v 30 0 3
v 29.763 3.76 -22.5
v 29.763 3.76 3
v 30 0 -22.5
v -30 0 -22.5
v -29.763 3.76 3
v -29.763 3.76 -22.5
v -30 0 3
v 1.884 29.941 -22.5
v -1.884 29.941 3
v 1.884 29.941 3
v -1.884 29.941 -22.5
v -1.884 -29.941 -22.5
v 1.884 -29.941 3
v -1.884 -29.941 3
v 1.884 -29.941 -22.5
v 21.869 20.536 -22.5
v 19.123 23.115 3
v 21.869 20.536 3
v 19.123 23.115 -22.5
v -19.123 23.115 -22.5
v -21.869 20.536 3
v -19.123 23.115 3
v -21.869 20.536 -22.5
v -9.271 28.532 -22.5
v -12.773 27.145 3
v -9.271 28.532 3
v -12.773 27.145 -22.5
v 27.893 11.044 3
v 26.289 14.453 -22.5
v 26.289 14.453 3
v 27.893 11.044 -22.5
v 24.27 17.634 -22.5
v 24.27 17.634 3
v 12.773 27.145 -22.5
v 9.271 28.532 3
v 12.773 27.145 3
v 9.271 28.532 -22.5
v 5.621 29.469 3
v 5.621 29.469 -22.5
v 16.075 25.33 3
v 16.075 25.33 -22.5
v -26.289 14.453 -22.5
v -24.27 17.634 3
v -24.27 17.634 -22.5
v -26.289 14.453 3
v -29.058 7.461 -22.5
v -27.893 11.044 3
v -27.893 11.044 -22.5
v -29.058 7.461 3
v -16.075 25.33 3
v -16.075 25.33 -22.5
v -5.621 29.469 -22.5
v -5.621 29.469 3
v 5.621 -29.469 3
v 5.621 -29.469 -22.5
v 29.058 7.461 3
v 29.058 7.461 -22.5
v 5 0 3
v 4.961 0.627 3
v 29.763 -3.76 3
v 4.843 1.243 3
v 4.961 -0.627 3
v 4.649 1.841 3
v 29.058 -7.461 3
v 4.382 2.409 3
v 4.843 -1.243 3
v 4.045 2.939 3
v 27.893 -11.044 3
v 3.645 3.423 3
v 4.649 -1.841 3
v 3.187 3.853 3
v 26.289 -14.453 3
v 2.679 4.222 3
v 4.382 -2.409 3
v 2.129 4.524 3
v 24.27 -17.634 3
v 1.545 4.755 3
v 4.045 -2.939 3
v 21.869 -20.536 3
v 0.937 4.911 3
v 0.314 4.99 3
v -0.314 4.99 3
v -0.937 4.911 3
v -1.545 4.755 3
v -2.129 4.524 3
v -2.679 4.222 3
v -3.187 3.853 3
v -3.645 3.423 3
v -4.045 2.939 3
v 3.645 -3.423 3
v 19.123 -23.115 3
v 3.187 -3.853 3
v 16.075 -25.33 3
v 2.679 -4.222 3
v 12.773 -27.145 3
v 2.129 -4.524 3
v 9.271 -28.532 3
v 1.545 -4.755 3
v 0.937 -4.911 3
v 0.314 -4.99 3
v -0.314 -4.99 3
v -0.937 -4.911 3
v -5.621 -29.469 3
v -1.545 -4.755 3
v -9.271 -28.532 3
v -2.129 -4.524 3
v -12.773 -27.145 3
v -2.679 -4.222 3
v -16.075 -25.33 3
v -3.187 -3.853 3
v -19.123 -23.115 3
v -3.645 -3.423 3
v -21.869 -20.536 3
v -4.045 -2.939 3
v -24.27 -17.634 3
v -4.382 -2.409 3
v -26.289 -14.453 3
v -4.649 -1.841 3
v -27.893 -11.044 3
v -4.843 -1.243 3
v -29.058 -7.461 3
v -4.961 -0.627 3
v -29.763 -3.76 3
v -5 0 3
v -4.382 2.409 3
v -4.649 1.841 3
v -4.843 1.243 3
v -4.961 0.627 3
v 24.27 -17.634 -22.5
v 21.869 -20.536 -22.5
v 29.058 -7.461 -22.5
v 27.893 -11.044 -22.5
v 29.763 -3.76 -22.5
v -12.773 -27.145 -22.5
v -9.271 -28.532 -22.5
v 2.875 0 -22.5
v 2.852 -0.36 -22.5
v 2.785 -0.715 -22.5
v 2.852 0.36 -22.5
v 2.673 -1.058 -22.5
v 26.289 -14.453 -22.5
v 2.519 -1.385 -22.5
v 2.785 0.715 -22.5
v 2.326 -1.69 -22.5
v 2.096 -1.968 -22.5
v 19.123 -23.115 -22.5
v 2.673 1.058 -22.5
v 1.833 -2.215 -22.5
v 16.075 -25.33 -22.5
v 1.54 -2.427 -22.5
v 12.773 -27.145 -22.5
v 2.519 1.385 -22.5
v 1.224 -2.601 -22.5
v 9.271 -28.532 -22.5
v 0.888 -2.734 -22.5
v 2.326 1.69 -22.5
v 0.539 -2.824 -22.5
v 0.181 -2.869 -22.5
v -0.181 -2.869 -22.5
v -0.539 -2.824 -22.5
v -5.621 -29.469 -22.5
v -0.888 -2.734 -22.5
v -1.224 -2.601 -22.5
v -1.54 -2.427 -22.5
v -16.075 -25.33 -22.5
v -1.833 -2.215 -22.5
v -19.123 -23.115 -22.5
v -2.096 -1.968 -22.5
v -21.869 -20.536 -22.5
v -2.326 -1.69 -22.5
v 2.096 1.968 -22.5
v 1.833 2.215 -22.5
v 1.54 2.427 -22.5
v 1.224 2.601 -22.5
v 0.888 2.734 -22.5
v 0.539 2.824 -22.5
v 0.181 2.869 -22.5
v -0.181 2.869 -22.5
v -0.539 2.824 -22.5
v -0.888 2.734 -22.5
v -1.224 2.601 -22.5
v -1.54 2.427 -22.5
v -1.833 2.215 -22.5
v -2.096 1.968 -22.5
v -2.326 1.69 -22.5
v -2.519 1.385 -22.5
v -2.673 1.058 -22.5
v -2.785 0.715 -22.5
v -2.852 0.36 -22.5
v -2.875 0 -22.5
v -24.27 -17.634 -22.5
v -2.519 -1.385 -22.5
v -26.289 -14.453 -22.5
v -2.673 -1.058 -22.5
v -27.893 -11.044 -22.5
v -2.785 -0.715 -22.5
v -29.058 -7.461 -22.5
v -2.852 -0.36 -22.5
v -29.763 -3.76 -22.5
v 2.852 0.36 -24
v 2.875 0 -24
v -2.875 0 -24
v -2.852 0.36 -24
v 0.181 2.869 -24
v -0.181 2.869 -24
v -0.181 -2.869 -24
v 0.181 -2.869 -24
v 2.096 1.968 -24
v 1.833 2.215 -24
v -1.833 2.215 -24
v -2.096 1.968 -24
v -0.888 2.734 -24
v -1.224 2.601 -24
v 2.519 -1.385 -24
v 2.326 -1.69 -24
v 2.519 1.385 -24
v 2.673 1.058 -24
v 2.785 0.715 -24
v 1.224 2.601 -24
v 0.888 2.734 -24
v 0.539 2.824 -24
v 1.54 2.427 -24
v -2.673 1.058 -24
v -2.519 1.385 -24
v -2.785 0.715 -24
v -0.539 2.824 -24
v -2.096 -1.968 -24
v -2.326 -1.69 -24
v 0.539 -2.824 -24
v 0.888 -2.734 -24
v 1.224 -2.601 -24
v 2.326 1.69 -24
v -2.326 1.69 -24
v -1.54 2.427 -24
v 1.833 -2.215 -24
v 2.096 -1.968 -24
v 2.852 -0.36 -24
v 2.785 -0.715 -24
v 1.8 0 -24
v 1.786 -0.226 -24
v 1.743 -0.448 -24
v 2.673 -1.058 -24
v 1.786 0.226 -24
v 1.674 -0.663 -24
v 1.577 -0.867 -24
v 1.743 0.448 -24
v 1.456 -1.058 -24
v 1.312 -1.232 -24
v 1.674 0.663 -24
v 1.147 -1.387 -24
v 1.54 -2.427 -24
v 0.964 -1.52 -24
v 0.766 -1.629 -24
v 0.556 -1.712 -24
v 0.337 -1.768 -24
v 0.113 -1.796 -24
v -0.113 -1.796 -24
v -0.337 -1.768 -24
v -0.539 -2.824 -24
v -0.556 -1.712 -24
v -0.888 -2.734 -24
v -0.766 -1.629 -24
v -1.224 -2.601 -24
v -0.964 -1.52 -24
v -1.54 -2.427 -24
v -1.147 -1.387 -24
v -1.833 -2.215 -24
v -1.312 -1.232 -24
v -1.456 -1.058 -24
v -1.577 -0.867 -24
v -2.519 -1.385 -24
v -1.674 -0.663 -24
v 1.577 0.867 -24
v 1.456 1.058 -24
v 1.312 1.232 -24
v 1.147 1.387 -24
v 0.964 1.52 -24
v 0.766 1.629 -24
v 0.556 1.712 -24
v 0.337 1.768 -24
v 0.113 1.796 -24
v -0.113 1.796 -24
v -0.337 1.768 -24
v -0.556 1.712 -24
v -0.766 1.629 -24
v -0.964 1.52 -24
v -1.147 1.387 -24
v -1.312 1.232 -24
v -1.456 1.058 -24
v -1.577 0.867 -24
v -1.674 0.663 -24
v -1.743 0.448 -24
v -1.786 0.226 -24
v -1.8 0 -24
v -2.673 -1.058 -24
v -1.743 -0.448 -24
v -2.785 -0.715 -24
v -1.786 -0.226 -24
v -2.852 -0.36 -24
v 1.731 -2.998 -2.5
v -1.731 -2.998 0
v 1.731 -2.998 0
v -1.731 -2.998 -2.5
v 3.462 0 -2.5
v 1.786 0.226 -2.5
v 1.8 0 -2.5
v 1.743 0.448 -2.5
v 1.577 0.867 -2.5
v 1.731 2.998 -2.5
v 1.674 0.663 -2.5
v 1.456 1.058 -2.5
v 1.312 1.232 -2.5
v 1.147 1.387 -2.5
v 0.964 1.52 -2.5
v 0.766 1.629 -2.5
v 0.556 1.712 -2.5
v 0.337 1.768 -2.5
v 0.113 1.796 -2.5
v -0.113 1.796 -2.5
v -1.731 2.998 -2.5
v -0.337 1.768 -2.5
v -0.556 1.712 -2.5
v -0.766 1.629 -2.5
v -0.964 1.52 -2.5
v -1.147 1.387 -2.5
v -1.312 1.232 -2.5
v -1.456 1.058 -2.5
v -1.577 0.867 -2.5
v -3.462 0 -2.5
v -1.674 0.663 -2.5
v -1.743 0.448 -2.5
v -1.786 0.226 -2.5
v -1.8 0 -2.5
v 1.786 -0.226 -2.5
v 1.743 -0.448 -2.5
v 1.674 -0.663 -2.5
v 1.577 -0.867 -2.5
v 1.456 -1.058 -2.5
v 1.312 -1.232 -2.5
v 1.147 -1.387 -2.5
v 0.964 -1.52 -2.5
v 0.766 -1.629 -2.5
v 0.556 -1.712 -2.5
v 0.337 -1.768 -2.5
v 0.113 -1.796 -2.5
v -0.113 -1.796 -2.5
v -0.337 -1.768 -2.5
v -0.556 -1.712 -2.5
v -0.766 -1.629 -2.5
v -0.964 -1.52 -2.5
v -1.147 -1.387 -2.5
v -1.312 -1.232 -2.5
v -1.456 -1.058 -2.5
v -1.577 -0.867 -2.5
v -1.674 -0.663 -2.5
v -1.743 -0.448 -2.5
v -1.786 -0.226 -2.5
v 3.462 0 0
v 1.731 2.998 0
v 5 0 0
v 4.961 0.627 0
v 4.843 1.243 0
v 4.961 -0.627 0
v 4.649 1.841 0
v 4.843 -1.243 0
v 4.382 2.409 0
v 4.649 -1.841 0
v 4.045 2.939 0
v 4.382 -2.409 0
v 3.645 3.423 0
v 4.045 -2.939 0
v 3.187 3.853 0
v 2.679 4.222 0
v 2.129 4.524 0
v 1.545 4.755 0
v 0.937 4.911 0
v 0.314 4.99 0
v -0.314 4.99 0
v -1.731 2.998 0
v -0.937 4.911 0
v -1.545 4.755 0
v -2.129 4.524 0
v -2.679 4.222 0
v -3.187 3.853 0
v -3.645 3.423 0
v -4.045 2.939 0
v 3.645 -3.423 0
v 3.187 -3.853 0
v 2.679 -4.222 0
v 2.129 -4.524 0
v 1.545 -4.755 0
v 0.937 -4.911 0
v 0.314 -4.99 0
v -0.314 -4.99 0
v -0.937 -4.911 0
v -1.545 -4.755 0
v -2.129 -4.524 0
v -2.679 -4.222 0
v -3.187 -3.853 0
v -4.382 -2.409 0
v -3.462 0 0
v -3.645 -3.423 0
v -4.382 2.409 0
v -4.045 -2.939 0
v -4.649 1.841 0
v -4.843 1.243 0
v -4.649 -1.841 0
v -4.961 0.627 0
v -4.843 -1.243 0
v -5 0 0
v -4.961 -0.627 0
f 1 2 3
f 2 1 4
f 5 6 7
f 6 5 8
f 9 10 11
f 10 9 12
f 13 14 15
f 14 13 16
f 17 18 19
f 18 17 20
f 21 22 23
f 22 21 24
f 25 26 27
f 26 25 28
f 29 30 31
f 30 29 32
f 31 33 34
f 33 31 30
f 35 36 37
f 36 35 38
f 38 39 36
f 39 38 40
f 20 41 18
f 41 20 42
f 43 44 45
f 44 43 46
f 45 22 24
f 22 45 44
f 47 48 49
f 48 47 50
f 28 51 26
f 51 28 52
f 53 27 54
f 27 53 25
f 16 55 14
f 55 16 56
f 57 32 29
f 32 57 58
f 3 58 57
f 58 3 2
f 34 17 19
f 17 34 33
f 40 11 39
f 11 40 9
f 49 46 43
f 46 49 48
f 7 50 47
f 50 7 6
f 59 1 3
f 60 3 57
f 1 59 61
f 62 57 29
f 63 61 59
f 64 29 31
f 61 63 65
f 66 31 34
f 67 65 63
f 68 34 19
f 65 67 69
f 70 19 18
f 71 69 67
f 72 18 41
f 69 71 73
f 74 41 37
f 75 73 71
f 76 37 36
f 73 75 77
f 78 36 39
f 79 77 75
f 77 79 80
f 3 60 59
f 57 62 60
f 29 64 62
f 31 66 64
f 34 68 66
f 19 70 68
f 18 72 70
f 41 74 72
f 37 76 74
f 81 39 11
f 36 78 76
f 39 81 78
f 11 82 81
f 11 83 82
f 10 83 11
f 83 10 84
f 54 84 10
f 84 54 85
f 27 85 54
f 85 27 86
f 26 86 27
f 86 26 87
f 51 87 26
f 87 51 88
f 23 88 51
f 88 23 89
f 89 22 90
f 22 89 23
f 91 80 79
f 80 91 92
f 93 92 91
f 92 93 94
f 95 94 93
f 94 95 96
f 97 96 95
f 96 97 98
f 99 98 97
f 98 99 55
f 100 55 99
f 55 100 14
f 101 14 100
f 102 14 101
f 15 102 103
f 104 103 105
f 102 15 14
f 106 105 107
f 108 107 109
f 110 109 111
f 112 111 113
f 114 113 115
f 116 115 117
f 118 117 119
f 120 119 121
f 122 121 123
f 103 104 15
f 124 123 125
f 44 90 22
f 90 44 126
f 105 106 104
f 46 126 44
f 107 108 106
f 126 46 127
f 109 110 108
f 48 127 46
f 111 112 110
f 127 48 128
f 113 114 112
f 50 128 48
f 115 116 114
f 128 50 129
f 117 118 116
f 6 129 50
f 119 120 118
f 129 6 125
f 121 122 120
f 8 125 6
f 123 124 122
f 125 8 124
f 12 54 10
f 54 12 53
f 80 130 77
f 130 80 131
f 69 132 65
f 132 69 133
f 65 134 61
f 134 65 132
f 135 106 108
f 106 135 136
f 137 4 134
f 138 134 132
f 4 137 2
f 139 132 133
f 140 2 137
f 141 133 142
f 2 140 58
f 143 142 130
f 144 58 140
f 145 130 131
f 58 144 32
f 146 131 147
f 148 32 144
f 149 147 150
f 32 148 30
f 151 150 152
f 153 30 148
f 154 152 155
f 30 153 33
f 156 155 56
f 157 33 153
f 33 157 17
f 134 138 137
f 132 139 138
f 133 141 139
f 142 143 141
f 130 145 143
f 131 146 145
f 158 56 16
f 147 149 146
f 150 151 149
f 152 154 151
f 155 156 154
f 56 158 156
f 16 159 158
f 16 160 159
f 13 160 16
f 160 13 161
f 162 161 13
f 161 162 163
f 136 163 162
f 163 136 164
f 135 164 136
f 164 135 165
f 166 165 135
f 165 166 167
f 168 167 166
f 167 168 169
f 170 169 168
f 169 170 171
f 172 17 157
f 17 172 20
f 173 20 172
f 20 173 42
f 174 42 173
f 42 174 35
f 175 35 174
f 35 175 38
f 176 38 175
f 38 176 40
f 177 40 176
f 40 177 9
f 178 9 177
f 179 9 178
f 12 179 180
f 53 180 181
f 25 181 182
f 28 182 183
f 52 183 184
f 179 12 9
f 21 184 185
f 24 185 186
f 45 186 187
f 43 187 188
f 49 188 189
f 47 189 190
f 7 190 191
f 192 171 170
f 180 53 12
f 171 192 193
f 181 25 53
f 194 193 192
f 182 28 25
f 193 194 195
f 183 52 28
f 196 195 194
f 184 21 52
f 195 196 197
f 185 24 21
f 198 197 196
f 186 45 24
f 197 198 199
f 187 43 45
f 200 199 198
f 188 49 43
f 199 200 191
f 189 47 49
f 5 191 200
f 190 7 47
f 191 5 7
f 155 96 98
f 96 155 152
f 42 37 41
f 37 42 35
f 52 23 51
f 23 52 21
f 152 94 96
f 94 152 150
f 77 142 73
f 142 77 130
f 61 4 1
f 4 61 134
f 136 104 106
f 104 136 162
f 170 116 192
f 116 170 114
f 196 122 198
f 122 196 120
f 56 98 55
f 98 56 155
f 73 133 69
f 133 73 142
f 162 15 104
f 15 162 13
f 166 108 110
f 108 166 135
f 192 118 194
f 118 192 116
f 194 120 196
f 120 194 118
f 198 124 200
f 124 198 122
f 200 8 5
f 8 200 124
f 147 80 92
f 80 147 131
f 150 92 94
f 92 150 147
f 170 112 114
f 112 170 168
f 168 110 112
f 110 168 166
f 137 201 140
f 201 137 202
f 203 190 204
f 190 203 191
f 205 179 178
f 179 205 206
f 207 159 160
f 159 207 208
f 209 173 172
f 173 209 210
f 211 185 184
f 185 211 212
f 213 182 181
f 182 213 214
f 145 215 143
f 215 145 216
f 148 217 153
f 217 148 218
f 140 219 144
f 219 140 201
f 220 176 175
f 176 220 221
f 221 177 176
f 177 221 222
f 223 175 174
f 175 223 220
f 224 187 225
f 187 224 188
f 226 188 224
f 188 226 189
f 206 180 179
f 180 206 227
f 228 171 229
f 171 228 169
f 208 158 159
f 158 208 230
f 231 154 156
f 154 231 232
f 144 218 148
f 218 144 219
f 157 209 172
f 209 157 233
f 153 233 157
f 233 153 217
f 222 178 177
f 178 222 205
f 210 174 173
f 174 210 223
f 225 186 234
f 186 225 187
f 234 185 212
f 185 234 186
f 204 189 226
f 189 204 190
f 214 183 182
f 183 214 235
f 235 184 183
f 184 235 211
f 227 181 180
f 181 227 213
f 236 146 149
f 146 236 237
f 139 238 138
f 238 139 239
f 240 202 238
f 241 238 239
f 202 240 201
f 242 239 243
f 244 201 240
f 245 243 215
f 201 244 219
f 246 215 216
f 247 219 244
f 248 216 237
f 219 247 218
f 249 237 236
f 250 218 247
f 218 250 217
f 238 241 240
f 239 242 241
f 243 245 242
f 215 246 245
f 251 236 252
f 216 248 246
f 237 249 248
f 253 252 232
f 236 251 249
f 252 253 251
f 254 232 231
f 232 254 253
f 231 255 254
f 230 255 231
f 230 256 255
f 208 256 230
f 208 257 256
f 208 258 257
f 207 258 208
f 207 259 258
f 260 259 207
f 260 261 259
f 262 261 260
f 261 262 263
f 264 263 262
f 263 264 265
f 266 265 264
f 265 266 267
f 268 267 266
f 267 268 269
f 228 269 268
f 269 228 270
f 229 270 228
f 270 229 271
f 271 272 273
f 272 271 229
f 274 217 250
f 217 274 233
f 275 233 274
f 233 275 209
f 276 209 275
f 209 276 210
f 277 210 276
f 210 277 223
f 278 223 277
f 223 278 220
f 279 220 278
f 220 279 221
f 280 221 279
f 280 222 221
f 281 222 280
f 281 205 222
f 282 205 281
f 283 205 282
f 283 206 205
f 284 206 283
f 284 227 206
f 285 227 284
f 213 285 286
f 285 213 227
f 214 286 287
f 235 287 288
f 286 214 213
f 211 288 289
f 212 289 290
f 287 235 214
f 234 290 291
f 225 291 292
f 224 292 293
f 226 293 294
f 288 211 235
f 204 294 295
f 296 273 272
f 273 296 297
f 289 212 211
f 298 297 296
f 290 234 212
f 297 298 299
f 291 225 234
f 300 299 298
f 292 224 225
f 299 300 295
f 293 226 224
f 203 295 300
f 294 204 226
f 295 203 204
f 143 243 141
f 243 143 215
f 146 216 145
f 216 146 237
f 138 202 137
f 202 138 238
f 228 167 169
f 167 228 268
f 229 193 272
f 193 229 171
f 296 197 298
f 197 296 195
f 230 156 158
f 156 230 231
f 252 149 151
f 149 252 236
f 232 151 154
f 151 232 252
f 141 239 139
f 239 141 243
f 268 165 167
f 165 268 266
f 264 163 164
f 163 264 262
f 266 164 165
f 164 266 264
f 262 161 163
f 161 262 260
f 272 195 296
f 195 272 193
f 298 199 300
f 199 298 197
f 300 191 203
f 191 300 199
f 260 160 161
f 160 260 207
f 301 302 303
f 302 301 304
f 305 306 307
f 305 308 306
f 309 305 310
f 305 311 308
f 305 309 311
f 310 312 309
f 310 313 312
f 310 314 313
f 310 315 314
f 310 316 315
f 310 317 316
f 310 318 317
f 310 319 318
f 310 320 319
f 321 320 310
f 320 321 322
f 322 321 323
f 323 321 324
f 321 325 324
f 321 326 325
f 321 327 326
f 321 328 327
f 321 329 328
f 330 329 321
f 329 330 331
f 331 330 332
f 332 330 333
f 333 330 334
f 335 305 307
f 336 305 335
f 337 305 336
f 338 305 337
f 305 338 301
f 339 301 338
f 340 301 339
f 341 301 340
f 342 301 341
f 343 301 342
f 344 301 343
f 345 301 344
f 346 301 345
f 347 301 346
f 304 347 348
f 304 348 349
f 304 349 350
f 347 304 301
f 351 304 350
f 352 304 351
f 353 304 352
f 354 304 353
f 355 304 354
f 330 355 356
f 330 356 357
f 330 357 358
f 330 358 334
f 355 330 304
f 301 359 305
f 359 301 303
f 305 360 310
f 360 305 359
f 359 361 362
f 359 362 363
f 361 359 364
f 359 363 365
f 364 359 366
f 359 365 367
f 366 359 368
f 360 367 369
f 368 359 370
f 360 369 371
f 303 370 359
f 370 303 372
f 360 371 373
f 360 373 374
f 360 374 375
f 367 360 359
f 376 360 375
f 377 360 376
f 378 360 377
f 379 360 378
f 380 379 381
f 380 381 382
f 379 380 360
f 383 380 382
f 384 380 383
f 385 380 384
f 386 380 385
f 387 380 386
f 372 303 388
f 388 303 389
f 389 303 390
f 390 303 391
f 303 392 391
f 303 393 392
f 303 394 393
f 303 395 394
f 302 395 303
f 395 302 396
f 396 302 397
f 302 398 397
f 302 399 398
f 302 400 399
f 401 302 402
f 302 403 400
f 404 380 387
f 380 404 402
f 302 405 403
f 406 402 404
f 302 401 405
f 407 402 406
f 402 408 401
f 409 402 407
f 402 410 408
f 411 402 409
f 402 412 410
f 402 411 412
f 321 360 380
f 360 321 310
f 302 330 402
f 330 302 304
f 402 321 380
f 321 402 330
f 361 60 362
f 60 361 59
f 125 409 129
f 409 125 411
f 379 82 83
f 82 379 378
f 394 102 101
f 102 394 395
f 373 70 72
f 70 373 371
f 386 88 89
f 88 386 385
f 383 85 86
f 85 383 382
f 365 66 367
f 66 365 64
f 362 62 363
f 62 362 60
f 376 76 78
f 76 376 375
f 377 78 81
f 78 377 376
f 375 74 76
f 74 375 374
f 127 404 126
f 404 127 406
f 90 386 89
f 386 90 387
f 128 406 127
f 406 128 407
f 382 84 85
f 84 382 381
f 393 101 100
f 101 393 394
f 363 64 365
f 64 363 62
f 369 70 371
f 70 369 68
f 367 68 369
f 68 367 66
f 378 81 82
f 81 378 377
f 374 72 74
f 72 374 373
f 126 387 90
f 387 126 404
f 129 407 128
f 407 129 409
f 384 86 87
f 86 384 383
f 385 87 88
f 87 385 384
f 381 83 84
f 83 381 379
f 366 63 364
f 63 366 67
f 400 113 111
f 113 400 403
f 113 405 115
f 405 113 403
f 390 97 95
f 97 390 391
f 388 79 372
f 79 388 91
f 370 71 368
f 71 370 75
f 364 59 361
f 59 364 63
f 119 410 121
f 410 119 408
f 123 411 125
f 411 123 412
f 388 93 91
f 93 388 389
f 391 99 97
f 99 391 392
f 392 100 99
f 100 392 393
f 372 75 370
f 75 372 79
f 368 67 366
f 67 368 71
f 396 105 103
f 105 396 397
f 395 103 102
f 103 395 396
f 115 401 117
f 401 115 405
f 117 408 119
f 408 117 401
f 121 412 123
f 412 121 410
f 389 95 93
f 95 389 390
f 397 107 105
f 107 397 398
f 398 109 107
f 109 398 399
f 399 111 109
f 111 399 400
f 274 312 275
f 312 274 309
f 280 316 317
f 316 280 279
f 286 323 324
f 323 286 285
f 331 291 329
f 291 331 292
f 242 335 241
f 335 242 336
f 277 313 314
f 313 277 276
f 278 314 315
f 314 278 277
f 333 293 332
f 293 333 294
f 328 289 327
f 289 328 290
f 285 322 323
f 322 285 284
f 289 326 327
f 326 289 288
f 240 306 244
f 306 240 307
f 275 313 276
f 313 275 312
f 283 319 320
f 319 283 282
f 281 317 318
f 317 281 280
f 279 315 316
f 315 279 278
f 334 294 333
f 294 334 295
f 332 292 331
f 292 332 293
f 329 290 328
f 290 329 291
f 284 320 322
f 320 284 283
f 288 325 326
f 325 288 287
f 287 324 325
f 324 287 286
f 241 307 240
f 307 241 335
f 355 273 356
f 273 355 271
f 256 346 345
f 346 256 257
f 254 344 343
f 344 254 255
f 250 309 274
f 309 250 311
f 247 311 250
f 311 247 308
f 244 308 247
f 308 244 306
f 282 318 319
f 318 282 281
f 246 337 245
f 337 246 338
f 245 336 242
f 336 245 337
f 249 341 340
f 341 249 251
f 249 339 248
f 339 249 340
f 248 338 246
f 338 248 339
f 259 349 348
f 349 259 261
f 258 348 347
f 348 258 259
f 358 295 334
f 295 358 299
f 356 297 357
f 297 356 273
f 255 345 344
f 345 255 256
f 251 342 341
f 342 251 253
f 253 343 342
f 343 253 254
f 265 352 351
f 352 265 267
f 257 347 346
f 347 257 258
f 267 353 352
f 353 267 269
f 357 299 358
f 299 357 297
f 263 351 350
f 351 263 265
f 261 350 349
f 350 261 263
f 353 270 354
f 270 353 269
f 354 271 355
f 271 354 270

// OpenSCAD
$fn = 50;

difference() {
	union() {
		translate(v = [0, 0, -22.5]) {
			cylinder(h = 25.5, r = 30.0);
		}
		#translate(v = [0, 0, -24.0]) {
			cylinder(h = 24, r = 2.875);
		}
	}
	union() {
		translate(v = [0, 0, 0]) {
			rotate(a = [0, 0, 0]) {
				difference() {
					union() {
						translate(v = [0, 0, -2.5]) {
							linear_extrude(height = 2.5) {
								polygon(points = [[3.4619999999999997, 0.0], [1.7310000000000003, 2.9981799479017264], [-1.7309999999999992, 2.9981799479017264], [-3.4619999999999997, 4.2397272186481365e-16], [-1.7310000000000014, -2.998179947901726], [1.7309999999999977, -2.9981799479017277]]);
							}
						}
					}
					union();
				}
			}
		}
		#cylinder(h = 3, r = 5.0);
		#translate(v = [0, 0, -100.0]) {
			cylinder(h = 200, r = 1.8);
		}
	}
}
